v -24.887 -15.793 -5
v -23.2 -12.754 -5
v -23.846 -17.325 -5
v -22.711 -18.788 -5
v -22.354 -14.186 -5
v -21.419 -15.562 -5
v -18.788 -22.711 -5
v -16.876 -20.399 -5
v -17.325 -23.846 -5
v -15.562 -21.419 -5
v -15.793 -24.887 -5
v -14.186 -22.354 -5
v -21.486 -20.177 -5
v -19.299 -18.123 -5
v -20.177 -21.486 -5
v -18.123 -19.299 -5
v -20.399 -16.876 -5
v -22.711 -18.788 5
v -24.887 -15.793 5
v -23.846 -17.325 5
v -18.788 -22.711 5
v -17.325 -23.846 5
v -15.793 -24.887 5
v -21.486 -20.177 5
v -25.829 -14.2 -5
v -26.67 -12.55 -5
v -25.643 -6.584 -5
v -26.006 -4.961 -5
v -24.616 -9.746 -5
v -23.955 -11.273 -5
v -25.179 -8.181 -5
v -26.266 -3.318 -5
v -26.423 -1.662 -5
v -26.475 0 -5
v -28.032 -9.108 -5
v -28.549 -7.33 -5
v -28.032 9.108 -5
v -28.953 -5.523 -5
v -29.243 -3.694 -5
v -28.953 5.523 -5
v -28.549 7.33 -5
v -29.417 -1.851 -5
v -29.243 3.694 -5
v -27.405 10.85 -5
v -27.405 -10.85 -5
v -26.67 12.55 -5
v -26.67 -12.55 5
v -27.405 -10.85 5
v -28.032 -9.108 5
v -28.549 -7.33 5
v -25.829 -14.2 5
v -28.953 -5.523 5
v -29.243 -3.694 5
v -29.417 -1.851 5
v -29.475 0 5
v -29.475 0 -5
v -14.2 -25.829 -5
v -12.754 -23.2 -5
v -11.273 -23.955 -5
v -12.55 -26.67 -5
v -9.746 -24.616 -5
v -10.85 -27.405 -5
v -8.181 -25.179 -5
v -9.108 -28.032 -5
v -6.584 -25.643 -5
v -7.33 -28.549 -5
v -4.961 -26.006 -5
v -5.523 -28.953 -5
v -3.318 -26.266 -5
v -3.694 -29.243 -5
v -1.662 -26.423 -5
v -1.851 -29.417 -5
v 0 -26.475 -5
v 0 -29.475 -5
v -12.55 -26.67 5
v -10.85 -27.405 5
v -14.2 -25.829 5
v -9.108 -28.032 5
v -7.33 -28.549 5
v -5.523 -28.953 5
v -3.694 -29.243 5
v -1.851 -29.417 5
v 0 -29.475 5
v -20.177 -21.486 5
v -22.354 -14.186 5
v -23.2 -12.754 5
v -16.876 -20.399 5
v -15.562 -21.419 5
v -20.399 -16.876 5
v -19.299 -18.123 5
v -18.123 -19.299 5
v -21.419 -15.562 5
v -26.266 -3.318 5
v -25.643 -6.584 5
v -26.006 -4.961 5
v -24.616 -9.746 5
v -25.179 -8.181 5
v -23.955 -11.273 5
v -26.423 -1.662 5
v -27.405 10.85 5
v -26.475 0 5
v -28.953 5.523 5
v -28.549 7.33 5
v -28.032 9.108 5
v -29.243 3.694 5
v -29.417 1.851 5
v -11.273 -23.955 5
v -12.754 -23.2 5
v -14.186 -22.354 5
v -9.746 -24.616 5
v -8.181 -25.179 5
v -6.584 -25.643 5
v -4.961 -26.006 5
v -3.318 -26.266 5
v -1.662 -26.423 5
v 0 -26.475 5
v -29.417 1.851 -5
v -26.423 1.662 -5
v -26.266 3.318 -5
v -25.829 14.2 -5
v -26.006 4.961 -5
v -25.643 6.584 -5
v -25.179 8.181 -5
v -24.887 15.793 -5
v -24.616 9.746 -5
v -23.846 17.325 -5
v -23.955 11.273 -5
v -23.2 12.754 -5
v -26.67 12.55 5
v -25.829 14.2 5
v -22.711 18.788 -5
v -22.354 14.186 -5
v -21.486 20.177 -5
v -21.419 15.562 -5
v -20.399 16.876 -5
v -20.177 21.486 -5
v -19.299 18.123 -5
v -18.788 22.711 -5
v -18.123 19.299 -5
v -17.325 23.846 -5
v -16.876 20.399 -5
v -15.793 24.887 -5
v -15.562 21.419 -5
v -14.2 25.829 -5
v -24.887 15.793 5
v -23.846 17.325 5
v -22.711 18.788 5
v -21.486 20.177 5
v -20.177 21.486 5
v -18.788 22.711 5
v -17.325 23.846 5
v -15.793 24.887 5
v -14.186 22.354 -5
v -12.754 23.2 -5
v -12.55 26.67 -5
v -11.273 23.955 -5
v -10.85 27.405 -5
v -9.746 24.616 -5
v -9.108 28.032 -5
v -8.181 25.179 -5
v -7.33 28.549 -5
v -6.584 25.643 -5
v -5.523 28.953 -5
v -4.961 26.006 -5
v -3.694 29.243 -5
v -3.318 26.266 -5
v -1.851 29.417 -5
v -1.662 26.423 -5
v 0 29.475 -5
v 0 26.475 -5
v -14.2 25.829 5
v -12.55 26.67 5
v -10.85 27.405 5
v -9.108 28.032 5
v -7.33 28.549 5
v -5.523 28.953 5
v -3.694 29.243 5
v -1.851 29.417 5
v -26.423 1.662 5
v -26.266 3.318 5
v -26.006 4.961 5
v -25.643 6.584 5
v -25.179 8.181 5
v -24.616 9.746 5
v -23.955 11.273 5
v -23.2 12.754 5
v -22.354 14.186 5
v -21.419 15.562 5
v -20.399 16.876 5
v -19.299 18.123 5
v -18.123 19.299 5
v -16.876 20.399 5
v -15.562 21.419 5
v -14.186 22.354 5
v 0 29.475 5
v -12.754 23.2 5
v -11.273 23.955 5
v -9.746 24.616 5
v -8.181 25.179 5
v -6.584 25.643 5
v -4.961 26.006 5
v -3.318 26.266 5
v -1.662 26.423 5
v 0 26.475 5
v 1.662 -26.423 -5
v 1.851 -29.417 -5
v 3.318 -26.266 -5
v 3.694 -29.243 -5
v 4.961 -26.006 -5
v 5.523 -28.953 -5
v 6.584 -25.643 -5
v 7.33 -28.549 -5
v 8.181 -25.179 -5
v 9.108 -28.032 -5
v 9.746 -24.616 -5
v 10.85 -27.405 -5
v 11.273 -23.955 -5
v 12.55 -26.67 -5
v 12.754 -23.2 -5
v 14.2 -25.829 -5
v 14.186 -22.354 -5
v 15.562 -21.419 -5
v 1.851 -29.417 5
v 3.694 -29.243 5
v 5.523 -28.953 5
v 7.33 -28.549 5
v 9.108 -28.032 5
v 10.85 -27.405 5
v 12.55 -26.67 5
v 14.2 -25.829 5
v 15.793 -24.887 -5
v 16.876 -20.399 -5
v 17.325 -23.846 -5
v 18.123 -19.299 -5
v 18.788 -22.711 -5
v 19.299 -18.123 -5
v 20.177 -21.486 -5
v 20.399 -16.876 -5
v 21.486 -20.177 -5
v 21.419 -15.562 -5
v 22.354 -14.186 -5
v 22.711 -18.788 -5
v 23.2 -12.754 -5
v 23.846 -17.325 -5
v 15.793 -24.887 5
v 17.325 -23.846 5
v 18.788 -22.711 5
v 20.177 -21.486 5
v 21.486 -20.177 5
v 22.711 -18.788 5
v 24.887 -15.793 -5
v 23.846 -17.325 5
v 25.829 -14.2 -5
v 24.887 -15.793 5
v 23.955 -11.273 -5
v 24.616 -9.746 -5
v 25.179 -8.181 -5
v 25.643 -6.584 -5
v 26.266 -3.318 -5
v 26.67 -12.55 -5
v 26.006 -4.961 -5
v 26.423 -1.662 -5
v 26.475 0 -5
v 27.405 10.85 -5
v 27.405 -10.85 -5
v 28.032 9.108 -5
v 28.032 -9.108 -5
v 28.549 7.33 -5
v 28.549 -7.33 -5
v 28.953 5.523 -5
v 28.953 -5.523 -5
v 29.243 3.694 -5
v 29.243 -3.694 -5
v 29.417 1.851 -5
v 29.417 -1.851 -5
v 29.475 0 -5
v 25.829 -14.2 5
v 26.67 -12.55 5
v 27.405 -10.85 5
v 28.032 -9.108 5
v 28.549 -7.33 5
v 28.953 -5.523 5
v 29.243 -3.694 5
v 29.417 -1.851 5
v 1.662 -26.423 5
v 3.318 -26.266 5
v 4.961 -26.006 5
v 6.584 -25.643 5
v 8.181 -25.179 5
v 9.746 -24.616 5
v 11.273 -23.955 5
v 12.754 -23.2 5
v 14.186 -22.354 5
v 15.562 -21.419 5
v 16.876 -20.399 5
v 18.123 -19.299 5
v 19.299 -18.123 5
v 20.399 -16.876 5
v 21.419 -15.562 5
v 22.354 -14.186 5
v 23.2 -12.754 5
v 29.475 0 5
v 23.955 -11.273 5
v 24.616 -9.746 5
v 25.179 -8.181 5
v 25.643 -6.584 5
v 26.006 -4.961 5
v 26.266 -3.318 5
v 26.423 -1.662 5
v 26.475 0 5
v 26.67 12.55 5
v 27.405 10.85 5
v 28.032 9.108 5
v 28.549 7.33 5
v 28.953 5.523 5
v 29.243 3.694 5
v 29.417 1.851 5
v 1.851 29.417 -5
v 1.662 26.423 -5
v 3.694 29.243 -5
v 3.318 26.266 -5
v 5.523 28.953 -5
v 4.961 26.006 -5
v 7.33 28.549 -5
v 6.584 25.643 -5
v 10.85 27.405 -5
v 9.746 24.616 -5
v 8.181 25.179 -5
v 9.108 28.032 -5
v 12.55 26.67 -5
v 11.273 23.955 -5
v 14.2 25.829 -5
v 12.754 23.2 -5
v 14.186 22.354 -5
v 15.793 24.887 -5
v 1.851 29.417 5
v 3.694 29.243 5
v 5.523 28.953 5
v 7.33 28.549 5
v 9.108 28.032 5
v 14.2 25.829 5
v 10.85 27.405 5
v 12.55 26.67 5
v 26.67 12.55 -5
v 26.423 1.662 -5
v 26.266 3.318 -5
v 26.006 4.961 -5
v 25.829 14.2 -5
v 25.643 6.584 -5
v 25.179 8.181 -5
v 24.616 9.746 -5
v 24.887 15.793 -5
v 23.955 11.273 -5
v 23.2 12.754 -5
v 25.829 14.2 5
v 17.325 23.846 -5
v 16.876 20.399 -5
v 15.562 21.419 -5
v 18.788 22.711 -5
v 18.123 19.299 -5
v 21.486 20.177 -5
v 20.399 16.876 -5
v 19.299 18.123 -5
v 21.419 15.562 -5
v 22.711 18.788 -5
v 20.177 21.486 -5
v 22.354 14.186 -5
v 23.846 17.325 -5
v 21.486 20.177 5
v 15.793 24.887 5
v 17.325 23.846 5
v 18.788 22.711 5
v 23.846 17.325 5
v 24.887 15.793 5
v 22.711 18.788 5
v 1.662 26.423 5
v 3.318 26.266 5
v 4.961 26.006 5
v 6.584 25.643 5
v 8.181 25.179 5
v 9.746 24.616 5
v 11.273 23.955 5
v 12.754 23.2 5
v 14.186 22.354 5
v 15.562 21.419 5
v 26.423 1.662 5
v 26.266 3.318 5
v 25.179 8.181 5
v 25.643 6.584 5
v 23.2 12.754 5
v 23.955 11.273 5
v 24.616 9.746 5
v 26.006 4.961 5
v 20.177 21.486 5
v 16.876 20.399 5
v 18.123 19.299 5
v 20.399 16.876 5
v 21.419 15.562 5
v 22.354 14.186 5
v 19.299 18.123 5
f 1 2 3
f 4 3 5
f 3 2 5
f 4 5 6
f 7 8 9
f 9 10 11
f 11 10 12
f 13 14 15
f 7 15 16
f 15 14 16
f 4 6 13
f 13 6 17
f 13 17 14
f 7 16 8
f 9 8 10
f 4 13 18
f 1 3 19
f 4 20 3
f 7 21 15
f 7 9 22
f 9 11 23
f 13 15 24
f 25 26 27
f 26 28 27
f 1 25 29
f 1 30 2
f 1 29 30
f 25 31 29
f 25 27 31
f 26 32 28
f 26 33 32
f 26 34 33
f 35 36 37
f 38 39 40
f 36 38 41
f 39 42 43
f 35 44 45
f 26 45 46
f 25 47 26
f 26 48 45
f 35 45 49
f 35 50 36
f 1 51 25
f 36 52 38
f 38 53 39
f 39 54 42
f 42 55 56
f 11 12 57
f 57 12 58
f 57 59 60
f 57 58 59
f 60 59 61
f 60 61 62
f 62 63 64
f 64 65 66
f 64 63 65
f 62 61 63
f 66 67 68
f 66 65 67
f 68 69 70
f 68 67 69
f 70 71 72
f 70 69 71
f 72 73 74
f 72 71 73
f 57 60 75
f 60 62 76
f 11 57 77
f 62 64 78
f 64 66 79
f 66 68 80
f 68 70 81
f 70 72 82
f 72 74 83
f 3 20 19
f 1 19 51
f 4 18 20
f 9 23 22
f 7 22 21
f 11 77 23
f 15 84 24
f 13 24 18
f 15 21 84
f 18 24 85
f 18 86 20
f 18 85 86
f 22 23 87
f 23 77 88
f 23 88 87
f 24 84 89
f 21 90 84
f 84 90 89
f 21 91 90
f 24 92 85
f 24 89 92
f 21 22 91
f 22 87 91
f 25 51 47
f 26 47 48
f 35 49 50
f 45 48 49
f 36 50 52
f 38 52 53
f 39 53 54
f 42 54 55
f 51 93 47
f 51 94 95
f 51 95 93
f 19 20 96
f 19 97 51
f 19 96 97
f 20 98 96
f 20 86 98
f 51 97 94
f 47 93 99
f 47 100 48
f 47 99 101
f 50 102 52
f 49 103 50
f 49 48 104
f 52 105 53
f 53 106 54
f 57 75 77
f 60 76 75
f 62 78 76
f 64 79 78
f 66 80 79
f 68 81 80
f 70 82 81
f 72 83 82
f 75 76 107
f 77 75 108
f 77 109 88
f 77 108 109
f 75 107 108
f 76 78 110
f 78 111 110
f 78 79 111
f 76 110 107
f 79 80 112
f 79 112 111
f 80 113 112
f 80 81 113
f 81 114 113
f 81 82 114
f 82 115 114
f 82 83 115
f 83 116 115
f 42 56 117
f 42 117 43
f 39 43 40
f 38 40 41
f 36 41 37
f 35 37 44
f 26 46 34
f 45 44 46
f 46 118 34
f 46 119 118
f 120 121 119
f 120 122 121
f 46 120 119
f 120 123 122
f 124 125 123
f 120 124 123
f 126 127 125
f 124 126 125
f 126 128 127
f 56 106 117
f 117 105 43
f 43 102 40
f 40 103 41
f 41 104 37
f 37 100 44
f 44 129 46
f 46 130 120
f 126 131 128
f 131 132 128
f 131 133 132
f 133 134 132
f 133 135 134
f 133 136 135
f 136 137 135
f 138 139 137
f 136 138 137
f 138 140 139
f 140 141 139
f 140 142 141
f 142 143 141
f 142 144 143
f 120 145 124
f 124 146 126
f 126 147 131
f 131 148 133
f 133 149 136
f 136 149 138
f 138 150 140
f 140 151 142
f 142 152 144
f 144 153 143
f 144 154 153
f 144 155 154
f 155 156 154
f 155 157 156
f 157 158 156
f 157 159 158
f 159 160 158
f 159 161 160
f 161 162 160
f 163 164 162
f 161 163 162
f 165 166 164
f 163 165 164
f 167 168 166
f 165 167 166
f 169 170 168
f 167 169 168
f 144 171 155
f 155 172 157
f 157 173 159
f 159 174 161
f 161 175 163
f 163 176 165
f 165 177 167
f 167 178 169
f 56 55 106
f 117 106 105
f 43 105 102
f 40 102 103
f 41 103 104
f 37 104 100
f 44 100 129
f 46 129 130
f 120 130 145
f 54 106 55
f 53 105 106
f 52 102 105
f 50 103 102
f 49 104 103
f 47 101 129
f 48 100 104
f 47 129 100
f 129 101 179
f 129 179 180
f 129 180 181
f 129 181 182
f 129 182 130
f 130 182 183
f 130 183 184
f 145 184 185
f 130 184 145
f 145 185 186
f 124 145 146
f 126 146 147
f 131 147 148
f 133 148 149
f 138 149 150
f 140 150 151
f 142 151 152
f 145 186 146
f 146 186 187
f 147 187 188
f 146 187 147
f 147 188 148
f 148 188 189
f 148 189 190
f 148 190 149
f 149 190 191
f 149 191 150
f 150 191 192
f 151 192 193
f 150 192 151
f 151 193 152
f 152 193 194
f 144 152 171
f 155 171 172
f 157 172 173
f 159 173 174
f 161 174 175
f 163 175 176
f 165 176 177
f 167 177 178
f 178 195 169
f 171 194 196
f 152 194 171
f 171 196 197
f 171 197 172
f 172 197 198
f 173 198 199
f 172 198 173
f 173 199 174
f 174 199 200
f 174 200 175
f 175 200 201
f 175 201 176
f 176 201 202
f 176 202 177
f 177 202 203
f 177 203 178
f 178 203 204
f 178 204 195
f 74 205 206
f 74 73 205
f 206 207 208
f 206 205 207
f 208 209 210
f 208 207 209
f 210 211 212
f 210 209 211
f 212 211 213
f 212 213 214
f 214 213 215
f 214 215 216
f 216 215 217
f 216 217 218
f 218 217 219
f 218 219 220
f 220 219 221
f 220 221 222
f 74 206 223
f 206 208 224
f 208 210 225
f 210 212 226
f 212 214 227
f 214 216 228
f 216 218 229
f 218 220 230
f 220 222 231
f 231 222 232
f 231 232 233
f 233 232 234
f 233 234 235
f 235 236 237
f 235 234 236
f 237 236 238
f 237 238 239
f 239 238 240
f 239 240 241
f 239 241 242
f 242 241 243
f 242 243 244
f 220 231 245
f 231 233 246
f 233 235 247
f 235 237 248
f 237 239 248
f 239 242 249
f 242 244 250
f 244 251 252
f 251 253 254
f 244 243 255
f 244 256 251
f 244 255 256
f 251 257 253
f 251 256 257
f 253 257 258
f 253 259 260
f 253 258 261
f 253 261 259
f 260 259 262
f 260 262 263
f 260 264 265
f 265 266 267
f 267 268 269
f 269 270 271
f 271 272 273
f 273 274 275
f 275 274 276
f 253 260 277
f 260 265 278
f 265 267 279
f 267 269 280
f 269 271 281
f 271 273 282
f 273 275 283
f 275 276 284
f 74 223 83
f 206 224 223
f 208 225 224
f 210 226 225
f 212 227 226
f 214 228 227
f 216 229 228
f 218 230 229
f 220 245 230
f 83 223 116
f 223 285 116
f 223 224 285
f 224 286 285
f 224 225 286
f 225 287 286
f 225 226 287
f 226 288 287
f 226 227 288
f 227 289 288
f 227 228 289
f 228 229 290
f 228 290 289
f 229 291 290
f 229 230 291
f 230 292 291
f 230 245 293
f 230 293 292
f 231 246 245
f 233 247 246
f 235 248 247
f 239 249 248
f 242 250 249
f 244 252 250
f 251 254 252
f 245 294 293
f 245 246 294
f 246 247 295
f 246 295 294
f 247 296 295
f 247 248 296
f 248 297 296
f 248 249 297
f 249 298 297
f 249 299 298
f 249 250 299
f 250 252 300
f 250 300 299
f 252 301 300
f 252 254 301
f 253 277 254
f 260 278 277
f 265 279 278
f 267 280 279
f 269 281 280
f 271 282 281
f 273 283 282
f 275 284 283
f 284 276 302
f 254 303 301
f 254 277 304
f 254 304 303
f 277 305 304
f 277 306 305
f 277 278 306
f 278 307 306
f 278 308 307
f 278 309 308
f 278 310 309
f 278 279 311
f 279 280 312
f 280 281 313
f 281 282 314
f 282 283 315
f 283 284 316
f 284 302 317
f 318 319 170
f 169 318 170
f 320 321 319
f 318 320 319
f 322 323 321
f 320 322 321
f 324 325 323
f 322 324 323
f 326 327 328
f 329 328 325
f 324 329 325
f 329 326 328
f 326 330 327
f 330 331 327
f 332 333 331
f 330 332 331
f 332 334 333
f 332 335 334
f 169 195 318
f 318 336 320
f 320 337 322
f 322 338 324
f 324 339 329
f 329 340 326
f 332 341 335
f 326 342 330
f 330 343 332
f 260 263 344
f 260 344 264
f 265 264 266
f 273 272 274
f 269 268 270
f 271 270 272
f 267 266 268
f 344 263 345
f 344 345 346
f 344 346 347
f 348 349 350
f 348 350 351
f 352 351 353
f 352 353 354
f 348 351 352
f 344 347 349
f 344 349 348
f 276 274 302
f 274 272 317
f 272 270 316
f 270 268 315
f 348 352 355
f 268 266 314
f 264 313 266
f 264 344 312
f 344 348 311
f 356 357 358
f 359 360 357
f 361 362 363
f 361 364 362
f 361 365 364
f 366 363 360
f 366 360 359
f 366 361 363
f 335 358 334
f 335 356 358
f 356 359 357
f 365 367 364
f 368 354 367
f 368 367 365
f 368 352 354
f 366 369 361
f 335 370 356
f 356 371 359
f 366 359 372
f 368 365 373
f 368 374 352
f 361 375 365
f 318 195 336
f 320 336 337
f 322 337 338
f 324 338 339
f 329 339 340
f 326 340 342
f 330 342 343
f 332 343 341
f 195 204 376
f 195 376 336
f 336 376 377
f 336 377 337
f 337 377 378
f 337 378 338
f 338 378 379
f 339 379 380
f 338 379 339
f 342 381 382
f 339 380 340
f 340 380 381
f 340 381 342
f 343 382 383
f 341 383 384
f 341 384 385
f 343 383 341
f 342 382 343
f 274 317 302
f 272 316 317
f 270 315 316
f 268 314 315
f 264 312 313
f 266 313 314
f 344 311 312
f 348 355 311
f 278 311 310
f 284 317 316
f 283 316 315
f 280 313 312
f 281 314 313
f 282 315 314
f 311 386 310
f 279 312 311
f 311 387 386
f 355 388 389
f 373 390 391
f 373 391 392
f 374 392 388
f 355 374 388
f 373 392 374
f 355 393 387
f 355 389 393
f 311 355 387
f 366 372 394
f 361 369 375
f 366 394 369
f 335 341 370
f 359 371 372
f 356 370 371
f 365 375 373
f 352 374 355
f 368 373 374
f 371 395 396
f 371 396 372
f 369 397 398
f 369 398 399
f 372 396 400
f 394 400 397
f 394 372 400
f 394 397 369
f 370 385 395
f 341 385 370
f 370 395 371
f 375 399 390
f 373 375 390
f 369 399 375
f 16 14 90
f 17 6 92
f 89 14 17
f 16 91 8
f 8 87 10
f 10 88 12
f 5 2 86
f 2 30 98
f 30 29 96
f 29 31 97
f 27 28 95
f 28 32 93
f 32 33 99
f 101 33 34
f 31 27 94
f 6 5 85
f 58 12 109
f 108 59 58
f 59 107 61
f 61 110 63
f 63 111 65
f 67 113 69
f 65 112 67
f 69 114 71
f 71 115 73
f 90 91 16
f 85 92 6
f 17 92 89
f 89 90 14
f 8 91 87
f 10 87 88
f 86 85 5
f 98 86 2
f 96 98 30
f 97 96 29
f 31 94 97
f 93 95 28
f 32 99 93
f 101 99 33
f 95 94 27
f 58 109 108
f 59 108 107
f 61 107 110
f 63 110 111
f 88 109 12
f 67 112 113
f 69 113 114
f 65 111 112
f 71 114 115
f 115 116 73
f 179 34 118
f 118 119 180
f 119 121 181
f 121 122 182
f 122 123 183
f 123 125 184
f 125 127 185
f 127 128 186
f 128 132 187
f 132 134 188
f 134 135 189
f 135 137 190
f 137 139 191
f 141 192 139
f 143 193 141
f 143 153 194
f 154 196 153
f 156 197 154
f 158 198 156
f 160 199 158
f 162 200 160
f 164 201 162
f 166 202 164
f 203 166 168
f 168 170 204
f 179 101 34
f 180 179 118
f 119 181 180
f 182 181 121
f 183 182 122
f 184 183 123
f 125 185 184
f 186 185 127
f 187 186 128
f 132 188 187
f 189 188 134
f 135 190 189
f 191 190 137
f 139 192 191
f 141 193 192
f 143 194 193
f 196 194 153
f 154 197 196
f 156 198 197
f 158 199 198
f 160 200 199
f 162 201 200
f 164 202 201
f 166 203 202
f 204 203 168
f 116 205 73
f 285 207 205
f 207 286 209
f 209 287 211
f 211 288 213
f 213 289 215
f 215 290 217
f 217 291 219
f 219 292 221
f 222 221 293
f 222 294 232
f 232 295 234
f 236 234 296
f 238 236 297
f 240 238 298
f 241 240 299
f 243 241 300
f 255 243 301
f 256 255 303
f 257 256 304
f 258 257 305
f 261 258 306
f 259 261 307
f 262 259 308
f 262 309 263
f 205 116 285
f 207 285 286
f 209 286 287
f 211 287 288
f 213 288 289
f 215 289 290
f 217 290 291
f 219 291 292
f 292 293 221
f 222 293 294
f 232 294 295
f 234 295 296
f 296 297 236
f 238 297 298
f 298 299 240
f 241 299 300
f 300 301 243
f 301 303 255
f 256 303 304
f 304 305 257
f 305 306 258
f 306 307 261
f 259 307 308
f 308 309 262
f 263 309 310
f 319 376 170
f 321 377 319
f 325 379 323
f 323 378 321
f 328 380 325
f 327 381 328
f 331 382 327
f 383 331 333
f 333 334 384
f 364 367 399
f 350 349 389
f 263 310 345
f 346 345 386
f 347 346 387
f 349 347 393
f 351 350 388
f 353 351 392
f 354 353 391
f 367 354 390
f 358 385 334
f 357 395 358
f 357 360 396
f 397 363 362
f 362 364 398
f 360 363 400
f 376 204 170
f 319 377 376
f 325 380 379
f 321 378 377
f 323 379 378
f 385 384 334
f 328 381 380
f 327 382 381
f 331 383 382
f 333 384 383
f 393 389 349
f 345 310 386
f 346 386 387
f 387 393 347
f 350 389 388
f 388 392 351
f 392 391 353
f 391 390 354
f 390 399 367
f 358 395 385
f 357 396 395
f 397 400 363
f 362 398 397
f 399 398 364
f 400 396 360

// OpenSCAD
// file: ../design_params.scad
// ============================================================
// STARLING SHARED DESIGN PARAMETERS — single source of truth for
// every dimension two parts must agree on.
//
// Consumers:
//   - every part in cad/ does        include <design_params.scad>
//   - parts in cad/calibration/ do   include <../design_params.scad>
//   - scripts/check_params.py FAILS the build if any of these names
//     is re-declared anywhere else — change values HERE only.
//
// Keep this file to simple `name = value;` lines so the tooling can
// parse it. One-off experiments: `openscad -D name=value` beats the
// include, no need to edit this file.
// ============================================================

// --- The paper tube (bought part, consumable) ---
tube_od     = 52.95;   // measured tube OD — verify with cad/calibration/tube_fit_ring.scad
tube_wall   = 3;       // paper wall thickness (measure your tube)
tube_length = 540;

// --- Printed-part fits ---
sleeve_clearance = 0;  // added to every sleeve bore diameter; tune via the fit ring
fit_tol          = 0.2; // clearance for printed slots/pockets
sleeve_wall      = 3;  // wall thickness of printed sleeves

// --- Wing spar chain (rib holes = adapter sockets = carbon rods) ---
spar_rod_d    = 6;     // carbon rod diameter
spar_hole_d   = 6.2;   // printed hole for that rod
spar_spacing  = 20;    // chordwise distance between the two spars
spar_y_offset = 1.5;   // spar line sits this far above the rib chord line

// --- Wing geometry ---
rib_chord     = 100;
naca_code     = 2415;  // cambered lifting section
rib_thickness = 2;

// --- Wing adapter <-> root rib interface ---
wing_tab_thickness = 11; // adapter tab; the root-rib window = this + fit_tol
wing_tab_span      = 15; // how far the tab reaches out from the sleeve
adapter_length     = 40; // sleeve length = tab chord extent

// --- Stations along the tube (assembly; wing slides for CG trim) ---
wing_station       = 300; // wing adapter position, measured from the motor face
tail_tube_stop     = 54;  // tube bottoms out here inside the tail sleeve (rim top)
nose_sleeve_length = 20;  // how far the nose cone slides over the tube

// --- Tail servos (9 g / SG90 class) ---
servo_body   = [23, 12.2]; // [length, width]
servo_flange = [32, 12.2];

// --- Motor (22xx class, rear pusher) ---
motor_shaft_hole_d = 10;
motor_screw_hole_d = 4;
motor_pattern_x    = 16;  // screw pattern
motor_pattern_y    = 19;
// main file
// TUBE FIT RING — 10-minute print to verify tube_od / sleeve_clearance
// before trusting any real sleeve. If the fit is wrong, adjust
// sleeve_clearance (or the measured tube_od) in cad/design_params.scad,
// reprint, repeat — never tune an individual part.

include <../design_params.scad>

test_length = 10;

tube_radius  = (tube_od + sleeve_clearance) / 2;
outer_radius = tube_radius + sleeve_wall;

$fn = 100;

difference() {
    cylinder(h = test_length, r = outer_radius, center = true);
    cylinder(h = test_length + 2, r = tube_radius, center = true);
}
